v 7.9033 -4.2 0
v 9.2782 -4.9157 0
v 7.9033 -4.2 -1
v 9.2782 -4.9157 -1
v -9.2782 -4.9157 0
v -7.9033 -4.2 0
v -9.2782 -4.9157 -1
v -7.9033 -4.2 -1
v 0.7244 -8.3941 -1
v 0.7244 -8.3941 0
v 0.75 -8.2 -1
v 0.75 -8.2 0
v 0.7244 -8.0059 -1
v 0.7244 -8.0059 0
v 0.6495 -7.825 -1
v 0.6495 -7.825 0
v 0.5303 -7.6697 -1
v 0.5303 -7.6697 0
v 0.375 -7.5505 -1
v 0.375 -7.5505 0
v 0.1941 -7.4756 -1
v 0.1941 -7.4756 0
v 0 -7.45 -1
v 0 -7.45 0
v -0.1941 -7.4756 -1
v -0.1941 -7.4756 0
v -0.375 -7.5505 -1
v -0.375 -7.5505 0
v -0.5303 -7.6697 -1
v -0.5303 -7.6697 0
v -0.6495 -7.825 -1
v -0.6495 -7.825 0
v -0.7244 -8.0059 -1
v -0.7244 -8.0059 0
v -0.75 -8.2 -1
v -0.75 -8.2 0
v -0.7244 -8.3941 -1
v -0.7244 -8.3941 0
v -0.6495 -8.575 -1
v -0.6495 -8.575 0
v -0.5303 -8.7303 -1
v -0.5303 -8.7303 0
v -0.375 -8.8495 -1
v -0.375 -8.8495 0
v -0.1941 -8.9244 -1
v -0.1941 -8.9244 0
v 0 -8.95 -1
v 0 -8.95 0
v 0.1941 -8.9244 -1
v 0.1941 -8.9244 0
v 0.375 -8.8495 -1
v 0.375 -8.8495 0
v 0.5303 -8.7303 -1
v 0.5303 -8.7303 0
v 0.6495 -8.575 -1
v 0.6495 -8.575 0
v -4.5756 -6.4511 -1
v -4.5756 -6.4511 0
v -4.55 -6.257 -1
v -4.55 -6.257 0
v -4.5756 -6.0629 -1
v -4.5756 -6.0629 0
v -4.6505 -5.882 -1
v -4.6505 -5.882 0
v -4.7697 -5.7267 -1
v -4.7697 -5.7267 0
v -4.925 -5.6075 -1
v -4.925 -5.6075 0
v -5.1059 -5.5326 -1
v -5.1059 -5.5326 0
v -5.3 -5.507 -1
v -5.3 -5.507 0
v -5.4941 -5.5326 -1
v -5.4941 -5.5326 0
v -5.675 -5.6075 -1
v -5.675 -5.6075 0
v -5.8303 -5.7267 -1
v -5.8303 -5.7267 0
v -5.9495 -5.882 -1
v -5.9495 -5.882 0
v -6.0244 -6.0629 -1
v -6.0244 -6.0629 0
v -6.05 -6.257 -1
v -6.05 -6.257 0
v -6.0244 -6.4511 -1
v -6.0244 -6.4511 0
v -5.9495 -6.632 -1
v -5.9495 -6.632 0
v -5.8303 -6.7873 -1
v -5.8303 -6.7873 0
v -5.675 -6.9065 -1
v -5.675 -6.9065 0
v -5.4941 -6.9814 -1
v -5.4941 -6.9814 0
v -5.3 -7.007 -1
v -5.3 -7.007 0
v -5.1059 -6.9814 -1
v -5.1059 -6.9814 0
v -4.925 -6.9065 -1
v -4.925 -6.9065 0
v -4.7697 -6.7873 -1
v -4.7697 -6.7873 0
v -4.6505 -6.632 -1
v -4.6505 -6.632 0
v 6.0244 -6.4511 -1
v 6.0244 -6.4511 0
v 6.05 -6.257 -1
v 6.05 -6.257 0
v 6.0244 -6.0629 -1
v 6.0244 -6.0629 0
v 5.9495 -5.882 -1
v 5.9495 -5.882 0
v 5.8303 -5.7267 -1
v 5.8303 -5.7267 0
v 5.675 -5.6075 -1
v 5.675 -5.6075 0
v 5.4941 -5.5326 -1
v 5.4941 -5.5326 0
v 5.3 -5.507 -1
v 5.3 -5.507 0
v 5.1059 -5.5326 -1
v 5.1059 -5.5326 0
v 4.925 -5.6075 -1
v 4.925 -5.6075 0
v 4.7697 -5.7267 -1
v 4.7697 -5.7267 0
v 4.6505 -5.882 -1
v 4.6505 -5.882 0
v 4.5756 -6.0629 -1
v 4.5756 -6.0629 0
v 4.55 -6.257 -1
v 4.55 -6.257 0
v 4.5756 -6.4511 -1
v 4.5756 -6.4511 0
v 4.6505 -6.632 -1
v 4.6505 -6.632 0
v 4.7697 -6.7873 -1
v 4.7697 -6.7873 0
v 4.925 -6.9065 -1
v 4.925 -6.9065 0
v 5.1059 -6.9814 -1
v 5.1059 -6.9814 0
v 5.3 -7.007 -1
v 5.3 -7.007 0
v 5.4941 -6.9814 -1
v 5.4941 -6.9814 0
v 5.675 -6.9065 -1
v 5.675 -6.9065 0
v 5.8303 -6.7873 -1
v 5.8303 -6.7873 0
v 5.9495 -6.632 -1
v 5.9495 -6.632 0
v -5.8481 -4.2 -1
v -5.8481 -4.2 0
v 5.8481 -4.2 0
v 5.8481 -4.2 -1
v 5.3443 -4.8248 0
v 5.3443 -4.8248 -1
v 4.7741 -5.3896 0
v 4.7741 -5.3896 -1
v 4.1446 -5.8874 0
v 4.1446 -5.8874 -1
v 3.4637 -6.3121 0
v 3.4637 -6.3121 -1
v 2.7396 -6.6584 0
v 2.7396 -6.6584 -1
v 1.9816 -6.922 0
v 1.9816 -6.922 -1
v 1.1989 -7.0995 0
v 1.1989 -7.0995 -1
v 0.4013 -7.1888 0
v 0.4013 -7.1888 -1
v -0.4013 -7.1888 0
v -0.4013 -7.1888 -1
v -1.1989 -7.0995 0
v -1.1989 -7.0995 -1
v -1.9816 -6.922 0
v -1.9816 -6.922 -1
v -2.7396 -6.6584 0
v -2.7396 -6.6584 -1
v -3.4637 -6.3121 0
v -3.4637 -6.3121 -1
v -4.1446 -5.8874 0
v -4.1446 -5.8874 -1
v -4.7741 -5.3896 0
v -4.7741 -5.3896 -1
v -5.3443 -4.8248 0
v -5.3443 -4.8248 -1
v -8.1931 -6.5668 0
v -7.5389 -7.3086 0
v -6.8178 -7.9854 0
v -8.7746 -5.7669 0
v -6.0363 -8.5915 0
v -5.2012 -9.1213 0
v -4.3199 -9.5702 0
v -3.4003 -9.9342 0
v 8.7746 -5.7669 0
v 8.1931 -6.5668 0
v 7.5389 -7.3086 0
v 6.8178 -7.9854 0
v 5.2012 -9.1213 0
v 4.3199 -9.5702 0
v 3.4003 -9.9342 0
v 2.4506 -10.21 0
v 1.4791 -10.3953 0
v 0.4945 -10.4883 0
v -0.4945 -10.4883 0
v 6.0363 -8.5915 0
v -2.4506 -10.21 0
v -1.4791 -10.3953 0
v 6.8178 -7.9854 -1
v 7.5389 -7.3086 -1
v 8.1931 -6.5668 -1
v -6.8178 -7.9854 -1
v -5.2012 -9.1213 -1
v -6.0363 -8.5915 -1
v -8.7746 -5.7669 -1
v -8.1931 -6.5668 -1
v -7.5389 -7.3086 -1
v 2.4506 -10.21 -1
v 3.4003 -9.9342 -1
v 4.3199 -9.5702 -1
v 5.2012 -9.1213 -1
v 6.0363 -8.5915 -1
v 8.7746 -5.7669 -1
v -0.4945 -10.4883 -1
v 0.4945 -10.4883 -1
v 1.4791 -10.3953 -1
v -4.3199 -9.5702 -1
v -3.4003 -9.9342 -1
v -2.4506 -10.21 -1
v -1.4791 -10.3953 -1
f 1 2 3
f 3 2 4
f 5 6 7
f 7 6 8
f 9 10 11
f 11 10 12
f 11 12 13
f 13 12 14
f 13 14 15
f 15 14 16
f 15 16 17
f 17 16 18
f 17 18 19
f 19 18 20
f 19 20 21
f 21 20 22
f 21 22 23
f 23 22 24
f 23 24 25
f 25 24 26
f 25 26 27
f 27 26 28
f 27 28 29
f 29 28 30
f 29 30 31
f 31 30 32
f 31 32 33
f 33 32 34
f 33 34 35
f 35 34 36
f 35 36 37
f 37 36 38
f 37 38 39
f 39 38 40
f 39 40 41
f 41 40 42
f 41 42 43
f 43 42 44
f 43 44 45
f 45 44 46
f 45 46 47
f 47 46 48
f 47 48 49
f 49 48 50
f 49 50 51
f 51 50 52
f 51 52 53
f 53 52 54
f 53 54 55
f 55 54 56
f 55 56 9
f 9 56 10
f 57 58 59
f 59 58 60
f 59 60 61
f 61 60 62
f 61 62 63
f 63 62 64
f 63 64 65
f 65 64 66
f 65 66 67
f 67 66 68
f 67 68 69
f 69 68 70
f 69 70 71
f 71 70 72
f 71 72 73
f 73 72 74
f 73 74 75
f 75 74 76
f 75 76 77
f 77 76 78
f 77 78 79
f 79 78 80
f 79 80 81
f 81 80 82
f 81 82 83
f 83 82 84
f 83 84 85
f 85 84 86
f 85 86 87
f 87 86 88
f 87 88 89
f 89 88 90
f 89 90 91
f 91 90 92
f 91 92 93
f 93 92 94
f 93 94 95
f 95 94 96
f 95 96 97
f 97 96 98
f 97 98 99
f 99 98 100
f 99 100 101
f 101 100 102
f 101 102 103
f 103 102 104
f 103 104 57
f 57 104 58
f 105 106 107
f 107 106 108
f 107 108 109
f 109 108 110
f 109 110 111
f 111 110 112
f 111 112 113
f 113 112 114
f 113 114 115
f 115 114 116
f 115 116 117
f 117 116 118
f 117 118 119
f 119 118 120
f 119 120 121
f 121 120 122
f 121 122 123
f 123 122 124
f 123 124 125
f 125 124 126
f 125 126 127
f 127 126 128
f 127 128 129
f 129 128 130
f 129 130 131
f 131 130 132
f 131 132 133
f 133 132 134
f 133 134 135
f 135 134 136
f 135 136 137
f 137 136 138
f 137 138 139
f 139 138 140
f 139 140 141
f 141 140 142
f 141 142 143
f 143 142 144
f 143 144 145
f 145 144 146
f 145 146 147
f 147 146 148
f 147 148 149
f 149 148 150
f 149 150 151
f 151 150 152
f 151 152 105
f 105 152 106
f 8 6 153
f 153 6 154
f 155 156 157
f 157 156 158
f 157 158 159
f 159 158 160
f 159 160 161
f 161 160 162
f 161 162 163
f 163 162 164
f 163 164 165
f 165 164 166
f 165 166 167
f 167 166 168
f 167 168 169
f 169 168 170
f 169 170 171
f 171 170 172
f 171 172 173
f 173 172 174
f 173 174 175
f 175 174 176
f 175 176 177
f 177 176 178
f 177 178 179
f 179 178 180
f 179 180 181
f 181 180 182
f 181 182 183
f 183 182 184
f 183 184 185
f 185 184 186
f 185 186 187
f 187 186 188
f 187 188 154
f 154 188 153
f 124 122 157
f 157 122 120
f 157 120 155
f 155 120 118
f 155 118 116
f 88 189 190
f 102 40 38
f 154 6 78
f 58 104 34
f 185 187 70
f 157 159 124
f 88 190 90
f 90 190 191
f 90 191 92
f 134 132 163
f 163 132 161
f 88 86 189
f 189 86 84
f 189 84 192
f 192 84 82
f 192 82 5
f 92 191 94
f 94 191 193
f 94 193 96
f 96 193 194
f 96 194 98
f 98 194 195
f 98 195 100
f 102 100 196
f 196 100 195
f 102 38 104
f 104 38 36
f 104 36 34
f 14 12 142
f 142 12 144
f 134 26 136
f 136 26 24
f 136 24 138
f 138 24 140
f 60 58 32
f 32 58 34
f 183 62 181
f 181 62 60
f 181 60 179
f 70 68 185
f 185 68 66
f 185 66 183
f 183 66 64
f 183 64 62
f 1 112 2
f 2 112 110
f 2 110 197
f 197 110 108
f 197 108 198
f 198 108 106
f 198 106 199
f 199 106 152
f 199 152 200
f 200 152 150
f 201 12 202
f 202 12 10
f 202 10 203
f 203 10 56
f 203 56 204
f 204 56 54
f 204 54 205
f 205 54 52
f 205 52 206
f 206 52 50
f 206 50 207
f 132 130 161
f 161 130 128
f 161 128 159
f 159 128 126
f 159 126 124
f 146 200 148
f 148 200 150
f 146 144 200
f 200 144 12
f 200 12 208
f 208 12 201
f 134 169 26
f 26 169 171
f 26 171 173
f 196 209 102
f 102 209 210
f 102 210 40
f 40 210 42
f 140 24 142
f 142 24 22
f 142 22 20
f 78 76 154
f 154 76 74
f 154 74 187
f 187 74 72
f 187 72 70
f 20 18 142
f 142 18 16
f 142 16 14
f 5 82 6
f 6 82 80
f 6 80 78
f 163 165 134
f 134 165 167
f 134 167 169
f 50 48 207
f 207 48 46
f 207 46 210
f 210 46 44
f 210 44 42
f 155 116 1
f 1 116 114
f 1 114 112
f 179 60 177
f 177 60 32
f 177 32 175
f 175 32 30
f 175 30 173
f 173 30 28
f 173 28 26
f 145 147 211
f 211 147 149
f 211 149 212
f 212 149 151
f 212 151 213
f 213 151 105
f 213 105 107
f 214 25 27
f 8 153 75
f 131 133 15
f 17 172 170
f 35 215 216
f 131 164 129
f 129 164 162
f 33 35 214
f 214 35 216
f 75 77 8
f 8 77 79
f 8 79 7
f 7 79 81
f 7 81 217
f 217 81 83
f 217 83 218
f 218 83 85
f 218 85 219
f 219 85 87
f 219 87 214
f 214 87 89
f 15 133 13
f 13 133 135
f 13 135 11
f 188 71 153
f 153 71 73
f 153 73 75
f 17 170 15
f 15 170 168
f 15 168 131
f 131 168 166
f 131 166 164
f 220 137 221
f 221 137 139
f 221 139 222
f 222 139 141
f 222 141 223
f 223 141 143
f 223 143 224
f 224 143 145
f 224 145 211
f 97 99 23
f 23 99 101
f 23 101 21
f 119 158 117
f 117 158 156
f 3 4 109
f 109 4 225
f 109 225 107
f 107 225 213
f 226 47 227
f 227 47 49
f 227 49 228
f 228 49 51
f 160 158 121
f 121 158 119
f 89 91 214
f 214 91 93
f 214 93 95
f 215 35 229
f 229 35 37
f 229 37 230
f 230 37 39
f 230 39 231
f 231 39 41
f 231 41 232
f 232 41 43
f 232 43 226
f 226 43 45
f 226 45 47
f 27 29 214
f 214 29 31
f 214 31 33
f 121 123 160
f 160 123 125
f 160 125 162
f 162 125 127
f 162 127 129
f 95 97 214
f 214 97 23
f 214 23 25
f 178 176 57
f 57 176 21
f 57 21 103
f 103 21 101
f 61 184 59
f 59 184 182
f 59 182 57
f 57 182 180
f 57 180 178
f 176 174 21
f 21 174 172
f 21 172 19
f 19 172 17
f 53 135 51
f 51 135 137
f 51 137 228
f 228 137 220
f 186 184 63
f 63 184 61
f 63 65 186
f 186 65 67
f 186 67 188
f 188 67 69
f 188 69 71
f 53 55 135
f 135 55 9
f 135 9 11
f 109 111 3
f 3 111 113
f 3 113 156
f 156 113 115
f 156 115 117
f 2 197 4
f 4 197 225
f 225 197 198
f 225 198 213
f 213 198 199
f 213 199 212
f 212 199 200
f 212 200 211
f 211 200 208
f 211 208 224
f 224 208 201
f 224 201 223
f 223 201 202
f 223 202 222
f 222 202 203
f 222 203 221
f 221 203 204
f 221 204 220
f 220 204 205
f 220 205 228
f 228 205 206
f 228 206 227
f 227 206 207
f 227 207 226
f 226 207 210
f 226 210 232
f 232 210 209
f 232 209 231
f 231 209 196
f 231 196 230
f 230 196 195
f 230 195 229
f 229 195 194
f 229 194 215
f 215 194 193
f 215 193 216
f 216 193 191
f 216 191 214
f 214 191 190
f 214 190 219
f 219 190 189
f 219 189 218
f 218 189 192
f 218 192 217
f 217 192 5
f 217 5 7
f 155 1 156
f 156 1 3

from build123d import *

# Parameters (mm, degrees)
BOSS_EXTRUDE1_DEPTH            = 1
F_1_5_1_5_DIAMETER_HOLE1_D     = 1.5
F_1_5_1_5_DIAMETER_HOLE1_DEPTH = 1
CUT_EXTRUDE2_DEPTH             = 2


with BuildPart() as part:
    # Sketch1 → Boss-Extrude1 (new body)
    with BuildSketch(Plane.XY):
        with BuildLine():
            Line((-9.623408959, -4.2), (-5.848076607, -4.2))
            ThreePointArc((-5.848076607, -4.2), (0, -7.2), (5.848076607, -4.2))
            Line((5.848076607, -4.2), (9.623408959, -4.2))
            ThreePointArc((9.623408959, -4.2), (0, -10.5), (-9.623408959, -4.2))
        make_face()
    extrude(amount=-BOSS_EXTRUDE1_DEPTH)

    # Ø1.5 (1.5) Diameter Hole1
    with Locations(Plane.XY):
        with Locations((0, -8.2), (-5.3, -6.256996084), (5.3, -6.256996084)):
            Hole(F_1_5_1_5_DIAMETER_HOLE1_D / 2, depth=F_1_5_1_5_DIAMETER_HOLE1_DEPTH)

    # Sketch2 → Cut-Extrude2 (cut, through all)
    with BuildSketch(Plane.XY):
        with BuildLine():
            Line((-7.903322086, -4.2), (-9.27823124, -4.915732403))
            ThreePointArc((-9.27823124, -4.915732403), (-9.457593181, -4.561132669), (-9.623408959, -4.2))
            Line((-9.623408959, -4.2), (-7.903322086, -4.2))
        make_face()
    cut_extrude2 = extrude(amount=-CUT_EXTRUDE2_DEPTH, mode=Mode.SUBTRACT)

    # Mirror1: Cut-Extrude2 across plane
    add(cut_extrude2.mirror(Plane(origin=(0, 0, 0), x_dir=(0, 0, 1), z_dir=(1, 0, 0))), mode=Mode.SUBTRACT)


solid = part.part
